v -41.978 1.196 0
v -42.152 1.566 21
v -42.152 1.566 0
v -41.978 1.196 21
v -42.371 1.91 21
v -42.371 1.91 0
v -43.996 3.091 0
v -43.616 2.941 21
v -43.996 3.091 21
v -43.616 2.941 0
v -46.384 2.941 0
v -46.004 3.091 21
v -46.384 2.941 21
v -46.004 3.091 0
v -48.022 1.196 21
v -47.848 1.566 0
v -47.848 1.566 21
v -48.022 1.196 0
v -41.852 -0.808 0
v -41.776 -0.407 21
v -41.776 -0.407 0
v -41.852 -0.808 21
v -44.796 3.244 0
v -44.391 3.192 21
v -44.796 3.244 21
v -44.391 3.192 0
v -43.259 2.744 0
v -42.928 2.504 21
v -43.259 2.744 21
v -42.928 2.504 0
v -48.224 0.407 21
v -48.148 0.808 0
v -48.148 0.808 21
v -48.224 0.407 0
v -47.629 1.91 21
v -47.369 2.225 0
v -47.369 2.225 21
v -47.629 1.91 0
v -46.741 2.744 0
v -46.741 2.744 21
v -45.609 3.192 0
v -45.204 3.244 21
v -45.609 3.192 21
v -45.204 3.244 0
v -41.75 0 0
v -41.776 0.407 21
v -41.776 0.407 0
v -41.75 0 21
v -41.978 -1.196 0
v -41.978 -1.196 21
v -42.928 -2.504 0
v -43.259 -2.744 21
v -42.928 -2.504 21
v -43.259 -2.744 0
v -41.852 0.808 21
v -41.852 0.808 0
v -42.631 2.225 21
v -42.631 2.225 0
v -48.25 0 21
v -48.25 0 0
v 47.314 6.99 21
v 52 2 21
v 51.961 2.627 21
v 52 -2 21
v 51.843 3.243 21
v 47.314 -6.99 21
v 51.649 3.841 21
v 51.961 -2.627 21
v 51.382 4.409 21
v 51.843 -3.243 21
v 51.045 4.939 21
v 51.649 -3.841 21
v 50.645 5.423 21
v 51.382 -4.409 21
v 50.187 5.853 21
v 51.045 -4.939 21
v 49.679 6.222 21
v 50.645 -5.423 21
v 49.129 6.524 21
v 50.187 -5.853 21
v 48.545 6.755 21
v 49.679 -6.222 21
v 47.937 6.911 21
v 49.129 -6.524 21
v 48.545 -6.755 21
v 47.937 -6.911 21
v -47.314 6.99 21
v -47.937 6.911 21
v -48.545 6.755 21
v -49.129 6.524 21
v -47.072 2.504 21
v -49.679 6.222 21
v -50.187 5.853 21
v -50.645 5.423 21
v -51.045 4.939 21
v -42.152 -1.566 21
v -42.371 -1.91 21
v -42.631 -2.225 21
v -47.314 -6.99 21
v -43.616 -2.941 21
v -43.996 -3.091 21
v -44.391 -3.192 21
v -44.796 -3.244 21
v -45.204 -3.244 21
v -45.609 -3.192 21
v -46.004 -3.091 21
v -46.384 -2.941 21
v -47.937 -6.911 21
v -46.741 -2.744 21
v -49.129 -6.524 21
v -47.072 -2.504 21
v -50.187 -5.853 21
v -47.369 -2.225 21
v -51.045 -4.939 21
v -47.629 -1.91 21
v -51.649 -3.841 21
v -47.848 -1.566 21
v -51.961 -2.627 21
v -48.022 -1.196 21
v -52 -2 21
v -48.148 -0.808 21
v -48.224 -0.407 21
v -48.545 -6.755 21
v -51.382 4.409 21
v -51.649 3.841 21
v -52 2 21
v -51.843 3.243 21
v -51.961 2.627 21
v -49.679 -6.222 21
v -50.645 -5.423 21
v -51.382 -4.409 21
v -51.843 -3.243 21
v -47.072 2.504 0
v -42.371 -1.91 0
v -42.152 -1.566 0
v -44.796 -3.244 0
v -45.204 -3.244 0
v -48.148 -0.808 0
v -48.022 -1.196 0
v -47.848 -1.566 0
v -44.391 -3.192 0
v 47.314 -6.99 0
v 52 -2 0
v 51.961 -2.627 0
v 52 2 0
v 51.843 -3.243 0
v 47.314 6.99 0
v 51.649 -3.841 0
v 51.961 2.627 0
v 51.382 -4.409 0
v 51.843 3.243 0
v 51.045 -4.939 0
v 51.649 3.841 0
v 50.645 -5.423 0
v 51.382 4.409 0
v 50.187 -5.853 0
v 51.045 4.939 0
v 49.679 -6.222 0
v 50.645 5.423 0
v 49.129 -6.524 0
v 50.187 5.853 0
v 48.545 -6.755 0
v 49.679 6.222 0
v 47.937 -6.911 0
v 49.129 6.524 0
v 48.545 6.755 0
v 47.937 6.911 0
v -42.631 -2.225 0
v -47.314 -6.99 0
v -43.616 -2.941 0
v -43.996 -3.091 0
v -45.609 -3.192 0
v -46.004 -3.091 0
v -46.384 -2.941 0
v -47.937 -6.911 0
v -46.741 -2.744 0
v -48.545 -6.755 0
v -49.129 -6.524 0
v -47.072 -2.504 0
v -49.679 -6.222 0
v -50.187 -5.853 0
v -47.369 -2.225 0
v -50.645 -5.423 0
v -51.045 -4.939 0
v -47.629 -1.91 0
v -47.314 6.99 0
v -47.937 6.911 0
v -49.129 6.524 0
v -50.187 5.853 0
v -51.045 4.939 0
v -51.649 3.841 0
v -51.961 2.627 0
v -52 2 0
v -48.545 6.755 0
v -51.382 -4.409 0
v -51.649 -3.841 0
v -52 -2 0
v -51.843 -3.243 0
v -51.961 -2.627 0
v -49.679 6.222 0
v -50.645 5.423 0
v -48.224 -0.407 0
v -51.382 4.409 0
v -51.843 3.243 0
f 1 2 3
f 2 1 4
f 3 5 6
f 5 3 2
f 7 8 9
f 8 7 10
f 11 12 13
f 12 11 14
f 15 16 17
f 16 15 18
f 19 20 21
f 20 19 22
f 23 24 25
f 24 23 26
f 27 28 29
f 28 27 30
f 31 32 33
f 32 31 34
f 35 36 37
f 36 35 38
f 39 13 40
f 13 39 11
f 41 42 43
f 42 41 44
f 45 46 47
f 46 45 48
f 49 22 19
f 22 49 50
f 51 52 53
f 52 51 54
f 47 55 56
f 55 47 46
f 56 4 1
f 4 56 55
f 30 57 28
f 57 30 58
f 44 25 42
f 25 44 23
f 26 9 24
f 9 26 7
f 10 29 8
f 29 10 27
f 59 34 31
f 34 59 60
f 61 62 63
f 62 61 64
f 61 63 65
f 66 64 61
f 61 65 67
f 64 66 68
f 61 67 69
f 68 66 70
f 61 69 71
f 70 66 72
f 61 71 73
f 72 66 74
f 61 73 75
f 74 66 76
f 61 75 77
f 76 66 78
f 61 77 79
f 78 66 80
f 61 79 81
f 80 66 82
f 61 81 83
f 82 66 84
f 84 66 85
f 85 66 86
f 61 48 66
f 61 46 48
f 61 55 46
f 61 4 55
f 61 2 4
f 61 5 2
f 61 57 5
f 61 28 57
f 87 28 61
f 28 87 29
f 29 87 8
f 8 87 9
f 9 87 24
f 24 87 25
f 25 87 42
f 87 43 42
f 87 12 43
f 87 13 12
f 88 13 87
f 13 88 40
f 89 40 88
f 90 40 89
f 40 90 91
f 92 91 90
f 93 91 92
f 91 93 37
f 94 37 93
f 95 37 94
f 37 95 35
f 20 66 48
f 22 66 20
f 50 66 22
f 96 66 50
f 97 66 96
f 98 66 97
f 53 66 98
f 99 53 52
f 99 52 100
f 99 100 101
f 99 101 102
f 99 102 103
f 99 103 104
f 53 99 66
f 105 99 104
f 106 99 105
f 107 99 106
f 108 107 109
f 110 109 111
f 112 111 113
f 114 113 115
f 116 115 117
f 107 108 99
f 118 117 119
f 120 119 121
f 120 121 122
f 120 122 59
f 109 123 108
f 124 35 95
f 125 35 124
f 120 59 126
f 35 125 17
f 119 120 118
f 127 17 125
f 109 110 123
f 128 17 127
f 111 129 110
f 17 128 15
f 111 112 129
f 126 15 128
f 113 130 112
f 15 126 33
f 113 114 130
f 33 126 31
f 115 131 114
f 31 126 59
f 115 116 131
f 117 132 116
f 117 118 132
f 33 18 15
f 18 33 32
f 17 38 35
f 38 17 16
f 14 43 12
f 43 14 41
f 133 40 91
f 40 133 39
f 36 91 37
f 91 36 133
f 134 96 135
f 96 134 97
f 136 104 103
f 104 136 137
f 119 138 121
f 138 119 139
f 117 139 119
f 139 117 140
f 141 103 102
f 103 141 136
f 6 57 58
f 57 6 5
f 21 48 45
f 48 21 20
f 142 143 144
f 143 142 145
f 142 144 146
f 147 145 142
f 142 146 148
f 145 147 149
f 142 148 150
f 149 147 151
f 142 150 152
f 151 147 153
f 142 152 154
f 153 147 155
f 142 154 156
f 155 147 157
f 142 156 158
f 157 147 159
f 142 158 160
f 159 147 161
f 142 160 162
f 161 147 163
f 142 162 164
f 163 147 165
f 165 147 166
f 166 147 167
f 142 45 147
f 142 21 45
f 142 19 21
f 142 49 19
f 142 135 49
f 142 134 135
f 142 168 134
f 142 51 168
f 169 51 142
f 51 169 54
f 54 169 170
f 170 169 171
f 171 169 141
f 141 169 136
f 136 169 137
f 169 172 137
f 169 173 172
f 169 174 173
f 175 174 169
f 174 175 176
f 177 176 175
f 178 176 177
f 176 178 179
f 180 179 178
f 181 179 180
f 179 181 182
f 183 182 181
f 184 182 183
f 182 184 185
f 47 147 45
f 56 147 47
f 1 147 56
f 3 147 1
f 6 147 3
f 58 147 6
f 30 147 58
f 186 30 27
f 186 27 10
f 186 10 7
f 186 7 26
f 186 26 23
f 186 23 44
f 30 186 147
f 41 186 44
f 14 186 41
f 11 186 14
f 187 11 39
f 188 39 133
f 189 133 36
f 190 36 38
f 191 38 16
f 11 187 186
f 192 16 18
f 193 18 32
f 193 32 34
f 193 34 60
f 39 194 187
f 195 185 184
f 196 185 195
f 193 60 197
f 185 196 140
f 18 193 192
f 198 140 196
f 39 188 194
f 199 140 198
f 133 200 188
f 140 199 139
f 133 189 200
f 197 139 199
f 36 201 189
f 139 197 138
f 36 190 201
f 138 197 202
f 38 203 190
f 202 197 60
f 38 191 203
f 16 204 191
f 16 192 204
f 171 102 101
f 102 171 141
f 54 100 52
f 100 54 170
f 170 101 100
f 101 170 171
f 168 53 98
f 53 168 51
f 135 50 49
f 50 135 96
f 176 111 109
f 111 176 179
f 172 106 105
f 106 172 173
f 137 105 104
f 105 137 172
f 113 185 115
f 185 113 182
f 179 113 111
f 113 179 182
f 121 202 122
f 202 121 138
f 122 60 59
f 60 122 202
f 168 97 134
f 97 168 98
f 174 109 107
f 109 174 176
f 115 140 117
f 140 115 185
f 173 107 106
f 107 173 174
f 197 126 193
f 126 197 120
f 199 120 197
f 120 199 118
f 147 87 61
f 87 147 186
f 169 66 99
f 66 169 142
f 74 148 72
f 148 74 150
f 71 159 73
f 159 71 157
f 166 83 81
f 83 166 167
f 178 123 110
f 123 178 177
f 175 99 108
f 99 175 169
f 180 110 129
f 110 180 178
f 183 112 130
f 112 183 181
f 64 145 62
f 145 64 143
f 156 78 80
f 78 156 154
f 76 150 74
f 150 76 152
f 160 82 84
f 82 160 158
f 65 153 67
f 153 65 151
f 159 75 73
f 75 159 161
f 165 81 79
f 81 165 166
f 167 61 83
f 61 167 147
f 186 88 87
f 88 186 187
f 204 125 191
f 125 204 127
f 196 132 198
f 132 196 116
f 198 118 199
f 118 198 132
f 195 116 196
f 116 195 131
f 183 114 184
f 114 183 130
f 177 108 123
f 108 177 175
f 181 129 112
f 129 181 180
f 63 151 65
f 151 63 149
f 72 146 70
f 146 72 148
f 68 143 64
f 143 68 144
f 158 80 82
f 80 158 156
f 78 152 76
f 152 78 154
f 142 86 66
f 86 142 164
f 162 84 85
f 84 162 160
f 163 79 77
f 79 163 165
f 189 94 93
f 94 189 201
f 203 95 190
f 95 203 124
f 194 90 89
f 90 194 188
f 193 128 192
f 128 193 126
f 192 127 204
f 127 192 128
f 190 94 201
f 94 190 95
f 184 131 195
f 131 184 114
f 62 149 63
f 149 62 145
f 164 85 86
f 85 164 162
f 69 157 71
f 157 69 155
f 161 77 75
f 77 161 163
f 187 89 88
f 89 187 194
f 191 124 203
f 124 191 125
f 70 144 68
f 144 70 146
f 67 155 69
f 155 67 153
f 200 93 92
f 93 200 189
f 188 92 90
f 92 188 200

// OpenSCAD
$fn = 50;


difference() {
	union() {
		hull() {
			translate(v = [-47.0000000000, 2.0000000000, 0]) {
				cylinder(h = 21, r = 5);
			}
			translate(v = [47.0000000000, 2.0000000000, 0]) {
				cylinder(h = 21, r = 5);
			}
			translate(v = [-47.0000000000, -2.0000000000, 0]) {
				cylinder(h = 21, r = 5);
			}
			translate(v = [47.0000000000, -2.0000000000, 0]) {
				cylinder(h = 21, r = 5);
			}
		}
	}
	union() {
		translate(v = [-45.0000000000, 0.0000000000, 0]) {
			cylinder(h = 21, r = 3.2500000000);
		}
		translate(v = [-45.0000000000, 0.0000000000, 0]) {
			cylinder(h = 21, r = 1.8000000000);
		}
		translate(v = [-45.0000000000, 0.0000000000, 0]) {
			cylinder(h = 21, r = 1.8000000000);
		}
		translate(v = [-45.0000000000, 0.0000000000, 0]) {
			cylinder(h = 21, r = 1.8000000000);
		}
	}
}
